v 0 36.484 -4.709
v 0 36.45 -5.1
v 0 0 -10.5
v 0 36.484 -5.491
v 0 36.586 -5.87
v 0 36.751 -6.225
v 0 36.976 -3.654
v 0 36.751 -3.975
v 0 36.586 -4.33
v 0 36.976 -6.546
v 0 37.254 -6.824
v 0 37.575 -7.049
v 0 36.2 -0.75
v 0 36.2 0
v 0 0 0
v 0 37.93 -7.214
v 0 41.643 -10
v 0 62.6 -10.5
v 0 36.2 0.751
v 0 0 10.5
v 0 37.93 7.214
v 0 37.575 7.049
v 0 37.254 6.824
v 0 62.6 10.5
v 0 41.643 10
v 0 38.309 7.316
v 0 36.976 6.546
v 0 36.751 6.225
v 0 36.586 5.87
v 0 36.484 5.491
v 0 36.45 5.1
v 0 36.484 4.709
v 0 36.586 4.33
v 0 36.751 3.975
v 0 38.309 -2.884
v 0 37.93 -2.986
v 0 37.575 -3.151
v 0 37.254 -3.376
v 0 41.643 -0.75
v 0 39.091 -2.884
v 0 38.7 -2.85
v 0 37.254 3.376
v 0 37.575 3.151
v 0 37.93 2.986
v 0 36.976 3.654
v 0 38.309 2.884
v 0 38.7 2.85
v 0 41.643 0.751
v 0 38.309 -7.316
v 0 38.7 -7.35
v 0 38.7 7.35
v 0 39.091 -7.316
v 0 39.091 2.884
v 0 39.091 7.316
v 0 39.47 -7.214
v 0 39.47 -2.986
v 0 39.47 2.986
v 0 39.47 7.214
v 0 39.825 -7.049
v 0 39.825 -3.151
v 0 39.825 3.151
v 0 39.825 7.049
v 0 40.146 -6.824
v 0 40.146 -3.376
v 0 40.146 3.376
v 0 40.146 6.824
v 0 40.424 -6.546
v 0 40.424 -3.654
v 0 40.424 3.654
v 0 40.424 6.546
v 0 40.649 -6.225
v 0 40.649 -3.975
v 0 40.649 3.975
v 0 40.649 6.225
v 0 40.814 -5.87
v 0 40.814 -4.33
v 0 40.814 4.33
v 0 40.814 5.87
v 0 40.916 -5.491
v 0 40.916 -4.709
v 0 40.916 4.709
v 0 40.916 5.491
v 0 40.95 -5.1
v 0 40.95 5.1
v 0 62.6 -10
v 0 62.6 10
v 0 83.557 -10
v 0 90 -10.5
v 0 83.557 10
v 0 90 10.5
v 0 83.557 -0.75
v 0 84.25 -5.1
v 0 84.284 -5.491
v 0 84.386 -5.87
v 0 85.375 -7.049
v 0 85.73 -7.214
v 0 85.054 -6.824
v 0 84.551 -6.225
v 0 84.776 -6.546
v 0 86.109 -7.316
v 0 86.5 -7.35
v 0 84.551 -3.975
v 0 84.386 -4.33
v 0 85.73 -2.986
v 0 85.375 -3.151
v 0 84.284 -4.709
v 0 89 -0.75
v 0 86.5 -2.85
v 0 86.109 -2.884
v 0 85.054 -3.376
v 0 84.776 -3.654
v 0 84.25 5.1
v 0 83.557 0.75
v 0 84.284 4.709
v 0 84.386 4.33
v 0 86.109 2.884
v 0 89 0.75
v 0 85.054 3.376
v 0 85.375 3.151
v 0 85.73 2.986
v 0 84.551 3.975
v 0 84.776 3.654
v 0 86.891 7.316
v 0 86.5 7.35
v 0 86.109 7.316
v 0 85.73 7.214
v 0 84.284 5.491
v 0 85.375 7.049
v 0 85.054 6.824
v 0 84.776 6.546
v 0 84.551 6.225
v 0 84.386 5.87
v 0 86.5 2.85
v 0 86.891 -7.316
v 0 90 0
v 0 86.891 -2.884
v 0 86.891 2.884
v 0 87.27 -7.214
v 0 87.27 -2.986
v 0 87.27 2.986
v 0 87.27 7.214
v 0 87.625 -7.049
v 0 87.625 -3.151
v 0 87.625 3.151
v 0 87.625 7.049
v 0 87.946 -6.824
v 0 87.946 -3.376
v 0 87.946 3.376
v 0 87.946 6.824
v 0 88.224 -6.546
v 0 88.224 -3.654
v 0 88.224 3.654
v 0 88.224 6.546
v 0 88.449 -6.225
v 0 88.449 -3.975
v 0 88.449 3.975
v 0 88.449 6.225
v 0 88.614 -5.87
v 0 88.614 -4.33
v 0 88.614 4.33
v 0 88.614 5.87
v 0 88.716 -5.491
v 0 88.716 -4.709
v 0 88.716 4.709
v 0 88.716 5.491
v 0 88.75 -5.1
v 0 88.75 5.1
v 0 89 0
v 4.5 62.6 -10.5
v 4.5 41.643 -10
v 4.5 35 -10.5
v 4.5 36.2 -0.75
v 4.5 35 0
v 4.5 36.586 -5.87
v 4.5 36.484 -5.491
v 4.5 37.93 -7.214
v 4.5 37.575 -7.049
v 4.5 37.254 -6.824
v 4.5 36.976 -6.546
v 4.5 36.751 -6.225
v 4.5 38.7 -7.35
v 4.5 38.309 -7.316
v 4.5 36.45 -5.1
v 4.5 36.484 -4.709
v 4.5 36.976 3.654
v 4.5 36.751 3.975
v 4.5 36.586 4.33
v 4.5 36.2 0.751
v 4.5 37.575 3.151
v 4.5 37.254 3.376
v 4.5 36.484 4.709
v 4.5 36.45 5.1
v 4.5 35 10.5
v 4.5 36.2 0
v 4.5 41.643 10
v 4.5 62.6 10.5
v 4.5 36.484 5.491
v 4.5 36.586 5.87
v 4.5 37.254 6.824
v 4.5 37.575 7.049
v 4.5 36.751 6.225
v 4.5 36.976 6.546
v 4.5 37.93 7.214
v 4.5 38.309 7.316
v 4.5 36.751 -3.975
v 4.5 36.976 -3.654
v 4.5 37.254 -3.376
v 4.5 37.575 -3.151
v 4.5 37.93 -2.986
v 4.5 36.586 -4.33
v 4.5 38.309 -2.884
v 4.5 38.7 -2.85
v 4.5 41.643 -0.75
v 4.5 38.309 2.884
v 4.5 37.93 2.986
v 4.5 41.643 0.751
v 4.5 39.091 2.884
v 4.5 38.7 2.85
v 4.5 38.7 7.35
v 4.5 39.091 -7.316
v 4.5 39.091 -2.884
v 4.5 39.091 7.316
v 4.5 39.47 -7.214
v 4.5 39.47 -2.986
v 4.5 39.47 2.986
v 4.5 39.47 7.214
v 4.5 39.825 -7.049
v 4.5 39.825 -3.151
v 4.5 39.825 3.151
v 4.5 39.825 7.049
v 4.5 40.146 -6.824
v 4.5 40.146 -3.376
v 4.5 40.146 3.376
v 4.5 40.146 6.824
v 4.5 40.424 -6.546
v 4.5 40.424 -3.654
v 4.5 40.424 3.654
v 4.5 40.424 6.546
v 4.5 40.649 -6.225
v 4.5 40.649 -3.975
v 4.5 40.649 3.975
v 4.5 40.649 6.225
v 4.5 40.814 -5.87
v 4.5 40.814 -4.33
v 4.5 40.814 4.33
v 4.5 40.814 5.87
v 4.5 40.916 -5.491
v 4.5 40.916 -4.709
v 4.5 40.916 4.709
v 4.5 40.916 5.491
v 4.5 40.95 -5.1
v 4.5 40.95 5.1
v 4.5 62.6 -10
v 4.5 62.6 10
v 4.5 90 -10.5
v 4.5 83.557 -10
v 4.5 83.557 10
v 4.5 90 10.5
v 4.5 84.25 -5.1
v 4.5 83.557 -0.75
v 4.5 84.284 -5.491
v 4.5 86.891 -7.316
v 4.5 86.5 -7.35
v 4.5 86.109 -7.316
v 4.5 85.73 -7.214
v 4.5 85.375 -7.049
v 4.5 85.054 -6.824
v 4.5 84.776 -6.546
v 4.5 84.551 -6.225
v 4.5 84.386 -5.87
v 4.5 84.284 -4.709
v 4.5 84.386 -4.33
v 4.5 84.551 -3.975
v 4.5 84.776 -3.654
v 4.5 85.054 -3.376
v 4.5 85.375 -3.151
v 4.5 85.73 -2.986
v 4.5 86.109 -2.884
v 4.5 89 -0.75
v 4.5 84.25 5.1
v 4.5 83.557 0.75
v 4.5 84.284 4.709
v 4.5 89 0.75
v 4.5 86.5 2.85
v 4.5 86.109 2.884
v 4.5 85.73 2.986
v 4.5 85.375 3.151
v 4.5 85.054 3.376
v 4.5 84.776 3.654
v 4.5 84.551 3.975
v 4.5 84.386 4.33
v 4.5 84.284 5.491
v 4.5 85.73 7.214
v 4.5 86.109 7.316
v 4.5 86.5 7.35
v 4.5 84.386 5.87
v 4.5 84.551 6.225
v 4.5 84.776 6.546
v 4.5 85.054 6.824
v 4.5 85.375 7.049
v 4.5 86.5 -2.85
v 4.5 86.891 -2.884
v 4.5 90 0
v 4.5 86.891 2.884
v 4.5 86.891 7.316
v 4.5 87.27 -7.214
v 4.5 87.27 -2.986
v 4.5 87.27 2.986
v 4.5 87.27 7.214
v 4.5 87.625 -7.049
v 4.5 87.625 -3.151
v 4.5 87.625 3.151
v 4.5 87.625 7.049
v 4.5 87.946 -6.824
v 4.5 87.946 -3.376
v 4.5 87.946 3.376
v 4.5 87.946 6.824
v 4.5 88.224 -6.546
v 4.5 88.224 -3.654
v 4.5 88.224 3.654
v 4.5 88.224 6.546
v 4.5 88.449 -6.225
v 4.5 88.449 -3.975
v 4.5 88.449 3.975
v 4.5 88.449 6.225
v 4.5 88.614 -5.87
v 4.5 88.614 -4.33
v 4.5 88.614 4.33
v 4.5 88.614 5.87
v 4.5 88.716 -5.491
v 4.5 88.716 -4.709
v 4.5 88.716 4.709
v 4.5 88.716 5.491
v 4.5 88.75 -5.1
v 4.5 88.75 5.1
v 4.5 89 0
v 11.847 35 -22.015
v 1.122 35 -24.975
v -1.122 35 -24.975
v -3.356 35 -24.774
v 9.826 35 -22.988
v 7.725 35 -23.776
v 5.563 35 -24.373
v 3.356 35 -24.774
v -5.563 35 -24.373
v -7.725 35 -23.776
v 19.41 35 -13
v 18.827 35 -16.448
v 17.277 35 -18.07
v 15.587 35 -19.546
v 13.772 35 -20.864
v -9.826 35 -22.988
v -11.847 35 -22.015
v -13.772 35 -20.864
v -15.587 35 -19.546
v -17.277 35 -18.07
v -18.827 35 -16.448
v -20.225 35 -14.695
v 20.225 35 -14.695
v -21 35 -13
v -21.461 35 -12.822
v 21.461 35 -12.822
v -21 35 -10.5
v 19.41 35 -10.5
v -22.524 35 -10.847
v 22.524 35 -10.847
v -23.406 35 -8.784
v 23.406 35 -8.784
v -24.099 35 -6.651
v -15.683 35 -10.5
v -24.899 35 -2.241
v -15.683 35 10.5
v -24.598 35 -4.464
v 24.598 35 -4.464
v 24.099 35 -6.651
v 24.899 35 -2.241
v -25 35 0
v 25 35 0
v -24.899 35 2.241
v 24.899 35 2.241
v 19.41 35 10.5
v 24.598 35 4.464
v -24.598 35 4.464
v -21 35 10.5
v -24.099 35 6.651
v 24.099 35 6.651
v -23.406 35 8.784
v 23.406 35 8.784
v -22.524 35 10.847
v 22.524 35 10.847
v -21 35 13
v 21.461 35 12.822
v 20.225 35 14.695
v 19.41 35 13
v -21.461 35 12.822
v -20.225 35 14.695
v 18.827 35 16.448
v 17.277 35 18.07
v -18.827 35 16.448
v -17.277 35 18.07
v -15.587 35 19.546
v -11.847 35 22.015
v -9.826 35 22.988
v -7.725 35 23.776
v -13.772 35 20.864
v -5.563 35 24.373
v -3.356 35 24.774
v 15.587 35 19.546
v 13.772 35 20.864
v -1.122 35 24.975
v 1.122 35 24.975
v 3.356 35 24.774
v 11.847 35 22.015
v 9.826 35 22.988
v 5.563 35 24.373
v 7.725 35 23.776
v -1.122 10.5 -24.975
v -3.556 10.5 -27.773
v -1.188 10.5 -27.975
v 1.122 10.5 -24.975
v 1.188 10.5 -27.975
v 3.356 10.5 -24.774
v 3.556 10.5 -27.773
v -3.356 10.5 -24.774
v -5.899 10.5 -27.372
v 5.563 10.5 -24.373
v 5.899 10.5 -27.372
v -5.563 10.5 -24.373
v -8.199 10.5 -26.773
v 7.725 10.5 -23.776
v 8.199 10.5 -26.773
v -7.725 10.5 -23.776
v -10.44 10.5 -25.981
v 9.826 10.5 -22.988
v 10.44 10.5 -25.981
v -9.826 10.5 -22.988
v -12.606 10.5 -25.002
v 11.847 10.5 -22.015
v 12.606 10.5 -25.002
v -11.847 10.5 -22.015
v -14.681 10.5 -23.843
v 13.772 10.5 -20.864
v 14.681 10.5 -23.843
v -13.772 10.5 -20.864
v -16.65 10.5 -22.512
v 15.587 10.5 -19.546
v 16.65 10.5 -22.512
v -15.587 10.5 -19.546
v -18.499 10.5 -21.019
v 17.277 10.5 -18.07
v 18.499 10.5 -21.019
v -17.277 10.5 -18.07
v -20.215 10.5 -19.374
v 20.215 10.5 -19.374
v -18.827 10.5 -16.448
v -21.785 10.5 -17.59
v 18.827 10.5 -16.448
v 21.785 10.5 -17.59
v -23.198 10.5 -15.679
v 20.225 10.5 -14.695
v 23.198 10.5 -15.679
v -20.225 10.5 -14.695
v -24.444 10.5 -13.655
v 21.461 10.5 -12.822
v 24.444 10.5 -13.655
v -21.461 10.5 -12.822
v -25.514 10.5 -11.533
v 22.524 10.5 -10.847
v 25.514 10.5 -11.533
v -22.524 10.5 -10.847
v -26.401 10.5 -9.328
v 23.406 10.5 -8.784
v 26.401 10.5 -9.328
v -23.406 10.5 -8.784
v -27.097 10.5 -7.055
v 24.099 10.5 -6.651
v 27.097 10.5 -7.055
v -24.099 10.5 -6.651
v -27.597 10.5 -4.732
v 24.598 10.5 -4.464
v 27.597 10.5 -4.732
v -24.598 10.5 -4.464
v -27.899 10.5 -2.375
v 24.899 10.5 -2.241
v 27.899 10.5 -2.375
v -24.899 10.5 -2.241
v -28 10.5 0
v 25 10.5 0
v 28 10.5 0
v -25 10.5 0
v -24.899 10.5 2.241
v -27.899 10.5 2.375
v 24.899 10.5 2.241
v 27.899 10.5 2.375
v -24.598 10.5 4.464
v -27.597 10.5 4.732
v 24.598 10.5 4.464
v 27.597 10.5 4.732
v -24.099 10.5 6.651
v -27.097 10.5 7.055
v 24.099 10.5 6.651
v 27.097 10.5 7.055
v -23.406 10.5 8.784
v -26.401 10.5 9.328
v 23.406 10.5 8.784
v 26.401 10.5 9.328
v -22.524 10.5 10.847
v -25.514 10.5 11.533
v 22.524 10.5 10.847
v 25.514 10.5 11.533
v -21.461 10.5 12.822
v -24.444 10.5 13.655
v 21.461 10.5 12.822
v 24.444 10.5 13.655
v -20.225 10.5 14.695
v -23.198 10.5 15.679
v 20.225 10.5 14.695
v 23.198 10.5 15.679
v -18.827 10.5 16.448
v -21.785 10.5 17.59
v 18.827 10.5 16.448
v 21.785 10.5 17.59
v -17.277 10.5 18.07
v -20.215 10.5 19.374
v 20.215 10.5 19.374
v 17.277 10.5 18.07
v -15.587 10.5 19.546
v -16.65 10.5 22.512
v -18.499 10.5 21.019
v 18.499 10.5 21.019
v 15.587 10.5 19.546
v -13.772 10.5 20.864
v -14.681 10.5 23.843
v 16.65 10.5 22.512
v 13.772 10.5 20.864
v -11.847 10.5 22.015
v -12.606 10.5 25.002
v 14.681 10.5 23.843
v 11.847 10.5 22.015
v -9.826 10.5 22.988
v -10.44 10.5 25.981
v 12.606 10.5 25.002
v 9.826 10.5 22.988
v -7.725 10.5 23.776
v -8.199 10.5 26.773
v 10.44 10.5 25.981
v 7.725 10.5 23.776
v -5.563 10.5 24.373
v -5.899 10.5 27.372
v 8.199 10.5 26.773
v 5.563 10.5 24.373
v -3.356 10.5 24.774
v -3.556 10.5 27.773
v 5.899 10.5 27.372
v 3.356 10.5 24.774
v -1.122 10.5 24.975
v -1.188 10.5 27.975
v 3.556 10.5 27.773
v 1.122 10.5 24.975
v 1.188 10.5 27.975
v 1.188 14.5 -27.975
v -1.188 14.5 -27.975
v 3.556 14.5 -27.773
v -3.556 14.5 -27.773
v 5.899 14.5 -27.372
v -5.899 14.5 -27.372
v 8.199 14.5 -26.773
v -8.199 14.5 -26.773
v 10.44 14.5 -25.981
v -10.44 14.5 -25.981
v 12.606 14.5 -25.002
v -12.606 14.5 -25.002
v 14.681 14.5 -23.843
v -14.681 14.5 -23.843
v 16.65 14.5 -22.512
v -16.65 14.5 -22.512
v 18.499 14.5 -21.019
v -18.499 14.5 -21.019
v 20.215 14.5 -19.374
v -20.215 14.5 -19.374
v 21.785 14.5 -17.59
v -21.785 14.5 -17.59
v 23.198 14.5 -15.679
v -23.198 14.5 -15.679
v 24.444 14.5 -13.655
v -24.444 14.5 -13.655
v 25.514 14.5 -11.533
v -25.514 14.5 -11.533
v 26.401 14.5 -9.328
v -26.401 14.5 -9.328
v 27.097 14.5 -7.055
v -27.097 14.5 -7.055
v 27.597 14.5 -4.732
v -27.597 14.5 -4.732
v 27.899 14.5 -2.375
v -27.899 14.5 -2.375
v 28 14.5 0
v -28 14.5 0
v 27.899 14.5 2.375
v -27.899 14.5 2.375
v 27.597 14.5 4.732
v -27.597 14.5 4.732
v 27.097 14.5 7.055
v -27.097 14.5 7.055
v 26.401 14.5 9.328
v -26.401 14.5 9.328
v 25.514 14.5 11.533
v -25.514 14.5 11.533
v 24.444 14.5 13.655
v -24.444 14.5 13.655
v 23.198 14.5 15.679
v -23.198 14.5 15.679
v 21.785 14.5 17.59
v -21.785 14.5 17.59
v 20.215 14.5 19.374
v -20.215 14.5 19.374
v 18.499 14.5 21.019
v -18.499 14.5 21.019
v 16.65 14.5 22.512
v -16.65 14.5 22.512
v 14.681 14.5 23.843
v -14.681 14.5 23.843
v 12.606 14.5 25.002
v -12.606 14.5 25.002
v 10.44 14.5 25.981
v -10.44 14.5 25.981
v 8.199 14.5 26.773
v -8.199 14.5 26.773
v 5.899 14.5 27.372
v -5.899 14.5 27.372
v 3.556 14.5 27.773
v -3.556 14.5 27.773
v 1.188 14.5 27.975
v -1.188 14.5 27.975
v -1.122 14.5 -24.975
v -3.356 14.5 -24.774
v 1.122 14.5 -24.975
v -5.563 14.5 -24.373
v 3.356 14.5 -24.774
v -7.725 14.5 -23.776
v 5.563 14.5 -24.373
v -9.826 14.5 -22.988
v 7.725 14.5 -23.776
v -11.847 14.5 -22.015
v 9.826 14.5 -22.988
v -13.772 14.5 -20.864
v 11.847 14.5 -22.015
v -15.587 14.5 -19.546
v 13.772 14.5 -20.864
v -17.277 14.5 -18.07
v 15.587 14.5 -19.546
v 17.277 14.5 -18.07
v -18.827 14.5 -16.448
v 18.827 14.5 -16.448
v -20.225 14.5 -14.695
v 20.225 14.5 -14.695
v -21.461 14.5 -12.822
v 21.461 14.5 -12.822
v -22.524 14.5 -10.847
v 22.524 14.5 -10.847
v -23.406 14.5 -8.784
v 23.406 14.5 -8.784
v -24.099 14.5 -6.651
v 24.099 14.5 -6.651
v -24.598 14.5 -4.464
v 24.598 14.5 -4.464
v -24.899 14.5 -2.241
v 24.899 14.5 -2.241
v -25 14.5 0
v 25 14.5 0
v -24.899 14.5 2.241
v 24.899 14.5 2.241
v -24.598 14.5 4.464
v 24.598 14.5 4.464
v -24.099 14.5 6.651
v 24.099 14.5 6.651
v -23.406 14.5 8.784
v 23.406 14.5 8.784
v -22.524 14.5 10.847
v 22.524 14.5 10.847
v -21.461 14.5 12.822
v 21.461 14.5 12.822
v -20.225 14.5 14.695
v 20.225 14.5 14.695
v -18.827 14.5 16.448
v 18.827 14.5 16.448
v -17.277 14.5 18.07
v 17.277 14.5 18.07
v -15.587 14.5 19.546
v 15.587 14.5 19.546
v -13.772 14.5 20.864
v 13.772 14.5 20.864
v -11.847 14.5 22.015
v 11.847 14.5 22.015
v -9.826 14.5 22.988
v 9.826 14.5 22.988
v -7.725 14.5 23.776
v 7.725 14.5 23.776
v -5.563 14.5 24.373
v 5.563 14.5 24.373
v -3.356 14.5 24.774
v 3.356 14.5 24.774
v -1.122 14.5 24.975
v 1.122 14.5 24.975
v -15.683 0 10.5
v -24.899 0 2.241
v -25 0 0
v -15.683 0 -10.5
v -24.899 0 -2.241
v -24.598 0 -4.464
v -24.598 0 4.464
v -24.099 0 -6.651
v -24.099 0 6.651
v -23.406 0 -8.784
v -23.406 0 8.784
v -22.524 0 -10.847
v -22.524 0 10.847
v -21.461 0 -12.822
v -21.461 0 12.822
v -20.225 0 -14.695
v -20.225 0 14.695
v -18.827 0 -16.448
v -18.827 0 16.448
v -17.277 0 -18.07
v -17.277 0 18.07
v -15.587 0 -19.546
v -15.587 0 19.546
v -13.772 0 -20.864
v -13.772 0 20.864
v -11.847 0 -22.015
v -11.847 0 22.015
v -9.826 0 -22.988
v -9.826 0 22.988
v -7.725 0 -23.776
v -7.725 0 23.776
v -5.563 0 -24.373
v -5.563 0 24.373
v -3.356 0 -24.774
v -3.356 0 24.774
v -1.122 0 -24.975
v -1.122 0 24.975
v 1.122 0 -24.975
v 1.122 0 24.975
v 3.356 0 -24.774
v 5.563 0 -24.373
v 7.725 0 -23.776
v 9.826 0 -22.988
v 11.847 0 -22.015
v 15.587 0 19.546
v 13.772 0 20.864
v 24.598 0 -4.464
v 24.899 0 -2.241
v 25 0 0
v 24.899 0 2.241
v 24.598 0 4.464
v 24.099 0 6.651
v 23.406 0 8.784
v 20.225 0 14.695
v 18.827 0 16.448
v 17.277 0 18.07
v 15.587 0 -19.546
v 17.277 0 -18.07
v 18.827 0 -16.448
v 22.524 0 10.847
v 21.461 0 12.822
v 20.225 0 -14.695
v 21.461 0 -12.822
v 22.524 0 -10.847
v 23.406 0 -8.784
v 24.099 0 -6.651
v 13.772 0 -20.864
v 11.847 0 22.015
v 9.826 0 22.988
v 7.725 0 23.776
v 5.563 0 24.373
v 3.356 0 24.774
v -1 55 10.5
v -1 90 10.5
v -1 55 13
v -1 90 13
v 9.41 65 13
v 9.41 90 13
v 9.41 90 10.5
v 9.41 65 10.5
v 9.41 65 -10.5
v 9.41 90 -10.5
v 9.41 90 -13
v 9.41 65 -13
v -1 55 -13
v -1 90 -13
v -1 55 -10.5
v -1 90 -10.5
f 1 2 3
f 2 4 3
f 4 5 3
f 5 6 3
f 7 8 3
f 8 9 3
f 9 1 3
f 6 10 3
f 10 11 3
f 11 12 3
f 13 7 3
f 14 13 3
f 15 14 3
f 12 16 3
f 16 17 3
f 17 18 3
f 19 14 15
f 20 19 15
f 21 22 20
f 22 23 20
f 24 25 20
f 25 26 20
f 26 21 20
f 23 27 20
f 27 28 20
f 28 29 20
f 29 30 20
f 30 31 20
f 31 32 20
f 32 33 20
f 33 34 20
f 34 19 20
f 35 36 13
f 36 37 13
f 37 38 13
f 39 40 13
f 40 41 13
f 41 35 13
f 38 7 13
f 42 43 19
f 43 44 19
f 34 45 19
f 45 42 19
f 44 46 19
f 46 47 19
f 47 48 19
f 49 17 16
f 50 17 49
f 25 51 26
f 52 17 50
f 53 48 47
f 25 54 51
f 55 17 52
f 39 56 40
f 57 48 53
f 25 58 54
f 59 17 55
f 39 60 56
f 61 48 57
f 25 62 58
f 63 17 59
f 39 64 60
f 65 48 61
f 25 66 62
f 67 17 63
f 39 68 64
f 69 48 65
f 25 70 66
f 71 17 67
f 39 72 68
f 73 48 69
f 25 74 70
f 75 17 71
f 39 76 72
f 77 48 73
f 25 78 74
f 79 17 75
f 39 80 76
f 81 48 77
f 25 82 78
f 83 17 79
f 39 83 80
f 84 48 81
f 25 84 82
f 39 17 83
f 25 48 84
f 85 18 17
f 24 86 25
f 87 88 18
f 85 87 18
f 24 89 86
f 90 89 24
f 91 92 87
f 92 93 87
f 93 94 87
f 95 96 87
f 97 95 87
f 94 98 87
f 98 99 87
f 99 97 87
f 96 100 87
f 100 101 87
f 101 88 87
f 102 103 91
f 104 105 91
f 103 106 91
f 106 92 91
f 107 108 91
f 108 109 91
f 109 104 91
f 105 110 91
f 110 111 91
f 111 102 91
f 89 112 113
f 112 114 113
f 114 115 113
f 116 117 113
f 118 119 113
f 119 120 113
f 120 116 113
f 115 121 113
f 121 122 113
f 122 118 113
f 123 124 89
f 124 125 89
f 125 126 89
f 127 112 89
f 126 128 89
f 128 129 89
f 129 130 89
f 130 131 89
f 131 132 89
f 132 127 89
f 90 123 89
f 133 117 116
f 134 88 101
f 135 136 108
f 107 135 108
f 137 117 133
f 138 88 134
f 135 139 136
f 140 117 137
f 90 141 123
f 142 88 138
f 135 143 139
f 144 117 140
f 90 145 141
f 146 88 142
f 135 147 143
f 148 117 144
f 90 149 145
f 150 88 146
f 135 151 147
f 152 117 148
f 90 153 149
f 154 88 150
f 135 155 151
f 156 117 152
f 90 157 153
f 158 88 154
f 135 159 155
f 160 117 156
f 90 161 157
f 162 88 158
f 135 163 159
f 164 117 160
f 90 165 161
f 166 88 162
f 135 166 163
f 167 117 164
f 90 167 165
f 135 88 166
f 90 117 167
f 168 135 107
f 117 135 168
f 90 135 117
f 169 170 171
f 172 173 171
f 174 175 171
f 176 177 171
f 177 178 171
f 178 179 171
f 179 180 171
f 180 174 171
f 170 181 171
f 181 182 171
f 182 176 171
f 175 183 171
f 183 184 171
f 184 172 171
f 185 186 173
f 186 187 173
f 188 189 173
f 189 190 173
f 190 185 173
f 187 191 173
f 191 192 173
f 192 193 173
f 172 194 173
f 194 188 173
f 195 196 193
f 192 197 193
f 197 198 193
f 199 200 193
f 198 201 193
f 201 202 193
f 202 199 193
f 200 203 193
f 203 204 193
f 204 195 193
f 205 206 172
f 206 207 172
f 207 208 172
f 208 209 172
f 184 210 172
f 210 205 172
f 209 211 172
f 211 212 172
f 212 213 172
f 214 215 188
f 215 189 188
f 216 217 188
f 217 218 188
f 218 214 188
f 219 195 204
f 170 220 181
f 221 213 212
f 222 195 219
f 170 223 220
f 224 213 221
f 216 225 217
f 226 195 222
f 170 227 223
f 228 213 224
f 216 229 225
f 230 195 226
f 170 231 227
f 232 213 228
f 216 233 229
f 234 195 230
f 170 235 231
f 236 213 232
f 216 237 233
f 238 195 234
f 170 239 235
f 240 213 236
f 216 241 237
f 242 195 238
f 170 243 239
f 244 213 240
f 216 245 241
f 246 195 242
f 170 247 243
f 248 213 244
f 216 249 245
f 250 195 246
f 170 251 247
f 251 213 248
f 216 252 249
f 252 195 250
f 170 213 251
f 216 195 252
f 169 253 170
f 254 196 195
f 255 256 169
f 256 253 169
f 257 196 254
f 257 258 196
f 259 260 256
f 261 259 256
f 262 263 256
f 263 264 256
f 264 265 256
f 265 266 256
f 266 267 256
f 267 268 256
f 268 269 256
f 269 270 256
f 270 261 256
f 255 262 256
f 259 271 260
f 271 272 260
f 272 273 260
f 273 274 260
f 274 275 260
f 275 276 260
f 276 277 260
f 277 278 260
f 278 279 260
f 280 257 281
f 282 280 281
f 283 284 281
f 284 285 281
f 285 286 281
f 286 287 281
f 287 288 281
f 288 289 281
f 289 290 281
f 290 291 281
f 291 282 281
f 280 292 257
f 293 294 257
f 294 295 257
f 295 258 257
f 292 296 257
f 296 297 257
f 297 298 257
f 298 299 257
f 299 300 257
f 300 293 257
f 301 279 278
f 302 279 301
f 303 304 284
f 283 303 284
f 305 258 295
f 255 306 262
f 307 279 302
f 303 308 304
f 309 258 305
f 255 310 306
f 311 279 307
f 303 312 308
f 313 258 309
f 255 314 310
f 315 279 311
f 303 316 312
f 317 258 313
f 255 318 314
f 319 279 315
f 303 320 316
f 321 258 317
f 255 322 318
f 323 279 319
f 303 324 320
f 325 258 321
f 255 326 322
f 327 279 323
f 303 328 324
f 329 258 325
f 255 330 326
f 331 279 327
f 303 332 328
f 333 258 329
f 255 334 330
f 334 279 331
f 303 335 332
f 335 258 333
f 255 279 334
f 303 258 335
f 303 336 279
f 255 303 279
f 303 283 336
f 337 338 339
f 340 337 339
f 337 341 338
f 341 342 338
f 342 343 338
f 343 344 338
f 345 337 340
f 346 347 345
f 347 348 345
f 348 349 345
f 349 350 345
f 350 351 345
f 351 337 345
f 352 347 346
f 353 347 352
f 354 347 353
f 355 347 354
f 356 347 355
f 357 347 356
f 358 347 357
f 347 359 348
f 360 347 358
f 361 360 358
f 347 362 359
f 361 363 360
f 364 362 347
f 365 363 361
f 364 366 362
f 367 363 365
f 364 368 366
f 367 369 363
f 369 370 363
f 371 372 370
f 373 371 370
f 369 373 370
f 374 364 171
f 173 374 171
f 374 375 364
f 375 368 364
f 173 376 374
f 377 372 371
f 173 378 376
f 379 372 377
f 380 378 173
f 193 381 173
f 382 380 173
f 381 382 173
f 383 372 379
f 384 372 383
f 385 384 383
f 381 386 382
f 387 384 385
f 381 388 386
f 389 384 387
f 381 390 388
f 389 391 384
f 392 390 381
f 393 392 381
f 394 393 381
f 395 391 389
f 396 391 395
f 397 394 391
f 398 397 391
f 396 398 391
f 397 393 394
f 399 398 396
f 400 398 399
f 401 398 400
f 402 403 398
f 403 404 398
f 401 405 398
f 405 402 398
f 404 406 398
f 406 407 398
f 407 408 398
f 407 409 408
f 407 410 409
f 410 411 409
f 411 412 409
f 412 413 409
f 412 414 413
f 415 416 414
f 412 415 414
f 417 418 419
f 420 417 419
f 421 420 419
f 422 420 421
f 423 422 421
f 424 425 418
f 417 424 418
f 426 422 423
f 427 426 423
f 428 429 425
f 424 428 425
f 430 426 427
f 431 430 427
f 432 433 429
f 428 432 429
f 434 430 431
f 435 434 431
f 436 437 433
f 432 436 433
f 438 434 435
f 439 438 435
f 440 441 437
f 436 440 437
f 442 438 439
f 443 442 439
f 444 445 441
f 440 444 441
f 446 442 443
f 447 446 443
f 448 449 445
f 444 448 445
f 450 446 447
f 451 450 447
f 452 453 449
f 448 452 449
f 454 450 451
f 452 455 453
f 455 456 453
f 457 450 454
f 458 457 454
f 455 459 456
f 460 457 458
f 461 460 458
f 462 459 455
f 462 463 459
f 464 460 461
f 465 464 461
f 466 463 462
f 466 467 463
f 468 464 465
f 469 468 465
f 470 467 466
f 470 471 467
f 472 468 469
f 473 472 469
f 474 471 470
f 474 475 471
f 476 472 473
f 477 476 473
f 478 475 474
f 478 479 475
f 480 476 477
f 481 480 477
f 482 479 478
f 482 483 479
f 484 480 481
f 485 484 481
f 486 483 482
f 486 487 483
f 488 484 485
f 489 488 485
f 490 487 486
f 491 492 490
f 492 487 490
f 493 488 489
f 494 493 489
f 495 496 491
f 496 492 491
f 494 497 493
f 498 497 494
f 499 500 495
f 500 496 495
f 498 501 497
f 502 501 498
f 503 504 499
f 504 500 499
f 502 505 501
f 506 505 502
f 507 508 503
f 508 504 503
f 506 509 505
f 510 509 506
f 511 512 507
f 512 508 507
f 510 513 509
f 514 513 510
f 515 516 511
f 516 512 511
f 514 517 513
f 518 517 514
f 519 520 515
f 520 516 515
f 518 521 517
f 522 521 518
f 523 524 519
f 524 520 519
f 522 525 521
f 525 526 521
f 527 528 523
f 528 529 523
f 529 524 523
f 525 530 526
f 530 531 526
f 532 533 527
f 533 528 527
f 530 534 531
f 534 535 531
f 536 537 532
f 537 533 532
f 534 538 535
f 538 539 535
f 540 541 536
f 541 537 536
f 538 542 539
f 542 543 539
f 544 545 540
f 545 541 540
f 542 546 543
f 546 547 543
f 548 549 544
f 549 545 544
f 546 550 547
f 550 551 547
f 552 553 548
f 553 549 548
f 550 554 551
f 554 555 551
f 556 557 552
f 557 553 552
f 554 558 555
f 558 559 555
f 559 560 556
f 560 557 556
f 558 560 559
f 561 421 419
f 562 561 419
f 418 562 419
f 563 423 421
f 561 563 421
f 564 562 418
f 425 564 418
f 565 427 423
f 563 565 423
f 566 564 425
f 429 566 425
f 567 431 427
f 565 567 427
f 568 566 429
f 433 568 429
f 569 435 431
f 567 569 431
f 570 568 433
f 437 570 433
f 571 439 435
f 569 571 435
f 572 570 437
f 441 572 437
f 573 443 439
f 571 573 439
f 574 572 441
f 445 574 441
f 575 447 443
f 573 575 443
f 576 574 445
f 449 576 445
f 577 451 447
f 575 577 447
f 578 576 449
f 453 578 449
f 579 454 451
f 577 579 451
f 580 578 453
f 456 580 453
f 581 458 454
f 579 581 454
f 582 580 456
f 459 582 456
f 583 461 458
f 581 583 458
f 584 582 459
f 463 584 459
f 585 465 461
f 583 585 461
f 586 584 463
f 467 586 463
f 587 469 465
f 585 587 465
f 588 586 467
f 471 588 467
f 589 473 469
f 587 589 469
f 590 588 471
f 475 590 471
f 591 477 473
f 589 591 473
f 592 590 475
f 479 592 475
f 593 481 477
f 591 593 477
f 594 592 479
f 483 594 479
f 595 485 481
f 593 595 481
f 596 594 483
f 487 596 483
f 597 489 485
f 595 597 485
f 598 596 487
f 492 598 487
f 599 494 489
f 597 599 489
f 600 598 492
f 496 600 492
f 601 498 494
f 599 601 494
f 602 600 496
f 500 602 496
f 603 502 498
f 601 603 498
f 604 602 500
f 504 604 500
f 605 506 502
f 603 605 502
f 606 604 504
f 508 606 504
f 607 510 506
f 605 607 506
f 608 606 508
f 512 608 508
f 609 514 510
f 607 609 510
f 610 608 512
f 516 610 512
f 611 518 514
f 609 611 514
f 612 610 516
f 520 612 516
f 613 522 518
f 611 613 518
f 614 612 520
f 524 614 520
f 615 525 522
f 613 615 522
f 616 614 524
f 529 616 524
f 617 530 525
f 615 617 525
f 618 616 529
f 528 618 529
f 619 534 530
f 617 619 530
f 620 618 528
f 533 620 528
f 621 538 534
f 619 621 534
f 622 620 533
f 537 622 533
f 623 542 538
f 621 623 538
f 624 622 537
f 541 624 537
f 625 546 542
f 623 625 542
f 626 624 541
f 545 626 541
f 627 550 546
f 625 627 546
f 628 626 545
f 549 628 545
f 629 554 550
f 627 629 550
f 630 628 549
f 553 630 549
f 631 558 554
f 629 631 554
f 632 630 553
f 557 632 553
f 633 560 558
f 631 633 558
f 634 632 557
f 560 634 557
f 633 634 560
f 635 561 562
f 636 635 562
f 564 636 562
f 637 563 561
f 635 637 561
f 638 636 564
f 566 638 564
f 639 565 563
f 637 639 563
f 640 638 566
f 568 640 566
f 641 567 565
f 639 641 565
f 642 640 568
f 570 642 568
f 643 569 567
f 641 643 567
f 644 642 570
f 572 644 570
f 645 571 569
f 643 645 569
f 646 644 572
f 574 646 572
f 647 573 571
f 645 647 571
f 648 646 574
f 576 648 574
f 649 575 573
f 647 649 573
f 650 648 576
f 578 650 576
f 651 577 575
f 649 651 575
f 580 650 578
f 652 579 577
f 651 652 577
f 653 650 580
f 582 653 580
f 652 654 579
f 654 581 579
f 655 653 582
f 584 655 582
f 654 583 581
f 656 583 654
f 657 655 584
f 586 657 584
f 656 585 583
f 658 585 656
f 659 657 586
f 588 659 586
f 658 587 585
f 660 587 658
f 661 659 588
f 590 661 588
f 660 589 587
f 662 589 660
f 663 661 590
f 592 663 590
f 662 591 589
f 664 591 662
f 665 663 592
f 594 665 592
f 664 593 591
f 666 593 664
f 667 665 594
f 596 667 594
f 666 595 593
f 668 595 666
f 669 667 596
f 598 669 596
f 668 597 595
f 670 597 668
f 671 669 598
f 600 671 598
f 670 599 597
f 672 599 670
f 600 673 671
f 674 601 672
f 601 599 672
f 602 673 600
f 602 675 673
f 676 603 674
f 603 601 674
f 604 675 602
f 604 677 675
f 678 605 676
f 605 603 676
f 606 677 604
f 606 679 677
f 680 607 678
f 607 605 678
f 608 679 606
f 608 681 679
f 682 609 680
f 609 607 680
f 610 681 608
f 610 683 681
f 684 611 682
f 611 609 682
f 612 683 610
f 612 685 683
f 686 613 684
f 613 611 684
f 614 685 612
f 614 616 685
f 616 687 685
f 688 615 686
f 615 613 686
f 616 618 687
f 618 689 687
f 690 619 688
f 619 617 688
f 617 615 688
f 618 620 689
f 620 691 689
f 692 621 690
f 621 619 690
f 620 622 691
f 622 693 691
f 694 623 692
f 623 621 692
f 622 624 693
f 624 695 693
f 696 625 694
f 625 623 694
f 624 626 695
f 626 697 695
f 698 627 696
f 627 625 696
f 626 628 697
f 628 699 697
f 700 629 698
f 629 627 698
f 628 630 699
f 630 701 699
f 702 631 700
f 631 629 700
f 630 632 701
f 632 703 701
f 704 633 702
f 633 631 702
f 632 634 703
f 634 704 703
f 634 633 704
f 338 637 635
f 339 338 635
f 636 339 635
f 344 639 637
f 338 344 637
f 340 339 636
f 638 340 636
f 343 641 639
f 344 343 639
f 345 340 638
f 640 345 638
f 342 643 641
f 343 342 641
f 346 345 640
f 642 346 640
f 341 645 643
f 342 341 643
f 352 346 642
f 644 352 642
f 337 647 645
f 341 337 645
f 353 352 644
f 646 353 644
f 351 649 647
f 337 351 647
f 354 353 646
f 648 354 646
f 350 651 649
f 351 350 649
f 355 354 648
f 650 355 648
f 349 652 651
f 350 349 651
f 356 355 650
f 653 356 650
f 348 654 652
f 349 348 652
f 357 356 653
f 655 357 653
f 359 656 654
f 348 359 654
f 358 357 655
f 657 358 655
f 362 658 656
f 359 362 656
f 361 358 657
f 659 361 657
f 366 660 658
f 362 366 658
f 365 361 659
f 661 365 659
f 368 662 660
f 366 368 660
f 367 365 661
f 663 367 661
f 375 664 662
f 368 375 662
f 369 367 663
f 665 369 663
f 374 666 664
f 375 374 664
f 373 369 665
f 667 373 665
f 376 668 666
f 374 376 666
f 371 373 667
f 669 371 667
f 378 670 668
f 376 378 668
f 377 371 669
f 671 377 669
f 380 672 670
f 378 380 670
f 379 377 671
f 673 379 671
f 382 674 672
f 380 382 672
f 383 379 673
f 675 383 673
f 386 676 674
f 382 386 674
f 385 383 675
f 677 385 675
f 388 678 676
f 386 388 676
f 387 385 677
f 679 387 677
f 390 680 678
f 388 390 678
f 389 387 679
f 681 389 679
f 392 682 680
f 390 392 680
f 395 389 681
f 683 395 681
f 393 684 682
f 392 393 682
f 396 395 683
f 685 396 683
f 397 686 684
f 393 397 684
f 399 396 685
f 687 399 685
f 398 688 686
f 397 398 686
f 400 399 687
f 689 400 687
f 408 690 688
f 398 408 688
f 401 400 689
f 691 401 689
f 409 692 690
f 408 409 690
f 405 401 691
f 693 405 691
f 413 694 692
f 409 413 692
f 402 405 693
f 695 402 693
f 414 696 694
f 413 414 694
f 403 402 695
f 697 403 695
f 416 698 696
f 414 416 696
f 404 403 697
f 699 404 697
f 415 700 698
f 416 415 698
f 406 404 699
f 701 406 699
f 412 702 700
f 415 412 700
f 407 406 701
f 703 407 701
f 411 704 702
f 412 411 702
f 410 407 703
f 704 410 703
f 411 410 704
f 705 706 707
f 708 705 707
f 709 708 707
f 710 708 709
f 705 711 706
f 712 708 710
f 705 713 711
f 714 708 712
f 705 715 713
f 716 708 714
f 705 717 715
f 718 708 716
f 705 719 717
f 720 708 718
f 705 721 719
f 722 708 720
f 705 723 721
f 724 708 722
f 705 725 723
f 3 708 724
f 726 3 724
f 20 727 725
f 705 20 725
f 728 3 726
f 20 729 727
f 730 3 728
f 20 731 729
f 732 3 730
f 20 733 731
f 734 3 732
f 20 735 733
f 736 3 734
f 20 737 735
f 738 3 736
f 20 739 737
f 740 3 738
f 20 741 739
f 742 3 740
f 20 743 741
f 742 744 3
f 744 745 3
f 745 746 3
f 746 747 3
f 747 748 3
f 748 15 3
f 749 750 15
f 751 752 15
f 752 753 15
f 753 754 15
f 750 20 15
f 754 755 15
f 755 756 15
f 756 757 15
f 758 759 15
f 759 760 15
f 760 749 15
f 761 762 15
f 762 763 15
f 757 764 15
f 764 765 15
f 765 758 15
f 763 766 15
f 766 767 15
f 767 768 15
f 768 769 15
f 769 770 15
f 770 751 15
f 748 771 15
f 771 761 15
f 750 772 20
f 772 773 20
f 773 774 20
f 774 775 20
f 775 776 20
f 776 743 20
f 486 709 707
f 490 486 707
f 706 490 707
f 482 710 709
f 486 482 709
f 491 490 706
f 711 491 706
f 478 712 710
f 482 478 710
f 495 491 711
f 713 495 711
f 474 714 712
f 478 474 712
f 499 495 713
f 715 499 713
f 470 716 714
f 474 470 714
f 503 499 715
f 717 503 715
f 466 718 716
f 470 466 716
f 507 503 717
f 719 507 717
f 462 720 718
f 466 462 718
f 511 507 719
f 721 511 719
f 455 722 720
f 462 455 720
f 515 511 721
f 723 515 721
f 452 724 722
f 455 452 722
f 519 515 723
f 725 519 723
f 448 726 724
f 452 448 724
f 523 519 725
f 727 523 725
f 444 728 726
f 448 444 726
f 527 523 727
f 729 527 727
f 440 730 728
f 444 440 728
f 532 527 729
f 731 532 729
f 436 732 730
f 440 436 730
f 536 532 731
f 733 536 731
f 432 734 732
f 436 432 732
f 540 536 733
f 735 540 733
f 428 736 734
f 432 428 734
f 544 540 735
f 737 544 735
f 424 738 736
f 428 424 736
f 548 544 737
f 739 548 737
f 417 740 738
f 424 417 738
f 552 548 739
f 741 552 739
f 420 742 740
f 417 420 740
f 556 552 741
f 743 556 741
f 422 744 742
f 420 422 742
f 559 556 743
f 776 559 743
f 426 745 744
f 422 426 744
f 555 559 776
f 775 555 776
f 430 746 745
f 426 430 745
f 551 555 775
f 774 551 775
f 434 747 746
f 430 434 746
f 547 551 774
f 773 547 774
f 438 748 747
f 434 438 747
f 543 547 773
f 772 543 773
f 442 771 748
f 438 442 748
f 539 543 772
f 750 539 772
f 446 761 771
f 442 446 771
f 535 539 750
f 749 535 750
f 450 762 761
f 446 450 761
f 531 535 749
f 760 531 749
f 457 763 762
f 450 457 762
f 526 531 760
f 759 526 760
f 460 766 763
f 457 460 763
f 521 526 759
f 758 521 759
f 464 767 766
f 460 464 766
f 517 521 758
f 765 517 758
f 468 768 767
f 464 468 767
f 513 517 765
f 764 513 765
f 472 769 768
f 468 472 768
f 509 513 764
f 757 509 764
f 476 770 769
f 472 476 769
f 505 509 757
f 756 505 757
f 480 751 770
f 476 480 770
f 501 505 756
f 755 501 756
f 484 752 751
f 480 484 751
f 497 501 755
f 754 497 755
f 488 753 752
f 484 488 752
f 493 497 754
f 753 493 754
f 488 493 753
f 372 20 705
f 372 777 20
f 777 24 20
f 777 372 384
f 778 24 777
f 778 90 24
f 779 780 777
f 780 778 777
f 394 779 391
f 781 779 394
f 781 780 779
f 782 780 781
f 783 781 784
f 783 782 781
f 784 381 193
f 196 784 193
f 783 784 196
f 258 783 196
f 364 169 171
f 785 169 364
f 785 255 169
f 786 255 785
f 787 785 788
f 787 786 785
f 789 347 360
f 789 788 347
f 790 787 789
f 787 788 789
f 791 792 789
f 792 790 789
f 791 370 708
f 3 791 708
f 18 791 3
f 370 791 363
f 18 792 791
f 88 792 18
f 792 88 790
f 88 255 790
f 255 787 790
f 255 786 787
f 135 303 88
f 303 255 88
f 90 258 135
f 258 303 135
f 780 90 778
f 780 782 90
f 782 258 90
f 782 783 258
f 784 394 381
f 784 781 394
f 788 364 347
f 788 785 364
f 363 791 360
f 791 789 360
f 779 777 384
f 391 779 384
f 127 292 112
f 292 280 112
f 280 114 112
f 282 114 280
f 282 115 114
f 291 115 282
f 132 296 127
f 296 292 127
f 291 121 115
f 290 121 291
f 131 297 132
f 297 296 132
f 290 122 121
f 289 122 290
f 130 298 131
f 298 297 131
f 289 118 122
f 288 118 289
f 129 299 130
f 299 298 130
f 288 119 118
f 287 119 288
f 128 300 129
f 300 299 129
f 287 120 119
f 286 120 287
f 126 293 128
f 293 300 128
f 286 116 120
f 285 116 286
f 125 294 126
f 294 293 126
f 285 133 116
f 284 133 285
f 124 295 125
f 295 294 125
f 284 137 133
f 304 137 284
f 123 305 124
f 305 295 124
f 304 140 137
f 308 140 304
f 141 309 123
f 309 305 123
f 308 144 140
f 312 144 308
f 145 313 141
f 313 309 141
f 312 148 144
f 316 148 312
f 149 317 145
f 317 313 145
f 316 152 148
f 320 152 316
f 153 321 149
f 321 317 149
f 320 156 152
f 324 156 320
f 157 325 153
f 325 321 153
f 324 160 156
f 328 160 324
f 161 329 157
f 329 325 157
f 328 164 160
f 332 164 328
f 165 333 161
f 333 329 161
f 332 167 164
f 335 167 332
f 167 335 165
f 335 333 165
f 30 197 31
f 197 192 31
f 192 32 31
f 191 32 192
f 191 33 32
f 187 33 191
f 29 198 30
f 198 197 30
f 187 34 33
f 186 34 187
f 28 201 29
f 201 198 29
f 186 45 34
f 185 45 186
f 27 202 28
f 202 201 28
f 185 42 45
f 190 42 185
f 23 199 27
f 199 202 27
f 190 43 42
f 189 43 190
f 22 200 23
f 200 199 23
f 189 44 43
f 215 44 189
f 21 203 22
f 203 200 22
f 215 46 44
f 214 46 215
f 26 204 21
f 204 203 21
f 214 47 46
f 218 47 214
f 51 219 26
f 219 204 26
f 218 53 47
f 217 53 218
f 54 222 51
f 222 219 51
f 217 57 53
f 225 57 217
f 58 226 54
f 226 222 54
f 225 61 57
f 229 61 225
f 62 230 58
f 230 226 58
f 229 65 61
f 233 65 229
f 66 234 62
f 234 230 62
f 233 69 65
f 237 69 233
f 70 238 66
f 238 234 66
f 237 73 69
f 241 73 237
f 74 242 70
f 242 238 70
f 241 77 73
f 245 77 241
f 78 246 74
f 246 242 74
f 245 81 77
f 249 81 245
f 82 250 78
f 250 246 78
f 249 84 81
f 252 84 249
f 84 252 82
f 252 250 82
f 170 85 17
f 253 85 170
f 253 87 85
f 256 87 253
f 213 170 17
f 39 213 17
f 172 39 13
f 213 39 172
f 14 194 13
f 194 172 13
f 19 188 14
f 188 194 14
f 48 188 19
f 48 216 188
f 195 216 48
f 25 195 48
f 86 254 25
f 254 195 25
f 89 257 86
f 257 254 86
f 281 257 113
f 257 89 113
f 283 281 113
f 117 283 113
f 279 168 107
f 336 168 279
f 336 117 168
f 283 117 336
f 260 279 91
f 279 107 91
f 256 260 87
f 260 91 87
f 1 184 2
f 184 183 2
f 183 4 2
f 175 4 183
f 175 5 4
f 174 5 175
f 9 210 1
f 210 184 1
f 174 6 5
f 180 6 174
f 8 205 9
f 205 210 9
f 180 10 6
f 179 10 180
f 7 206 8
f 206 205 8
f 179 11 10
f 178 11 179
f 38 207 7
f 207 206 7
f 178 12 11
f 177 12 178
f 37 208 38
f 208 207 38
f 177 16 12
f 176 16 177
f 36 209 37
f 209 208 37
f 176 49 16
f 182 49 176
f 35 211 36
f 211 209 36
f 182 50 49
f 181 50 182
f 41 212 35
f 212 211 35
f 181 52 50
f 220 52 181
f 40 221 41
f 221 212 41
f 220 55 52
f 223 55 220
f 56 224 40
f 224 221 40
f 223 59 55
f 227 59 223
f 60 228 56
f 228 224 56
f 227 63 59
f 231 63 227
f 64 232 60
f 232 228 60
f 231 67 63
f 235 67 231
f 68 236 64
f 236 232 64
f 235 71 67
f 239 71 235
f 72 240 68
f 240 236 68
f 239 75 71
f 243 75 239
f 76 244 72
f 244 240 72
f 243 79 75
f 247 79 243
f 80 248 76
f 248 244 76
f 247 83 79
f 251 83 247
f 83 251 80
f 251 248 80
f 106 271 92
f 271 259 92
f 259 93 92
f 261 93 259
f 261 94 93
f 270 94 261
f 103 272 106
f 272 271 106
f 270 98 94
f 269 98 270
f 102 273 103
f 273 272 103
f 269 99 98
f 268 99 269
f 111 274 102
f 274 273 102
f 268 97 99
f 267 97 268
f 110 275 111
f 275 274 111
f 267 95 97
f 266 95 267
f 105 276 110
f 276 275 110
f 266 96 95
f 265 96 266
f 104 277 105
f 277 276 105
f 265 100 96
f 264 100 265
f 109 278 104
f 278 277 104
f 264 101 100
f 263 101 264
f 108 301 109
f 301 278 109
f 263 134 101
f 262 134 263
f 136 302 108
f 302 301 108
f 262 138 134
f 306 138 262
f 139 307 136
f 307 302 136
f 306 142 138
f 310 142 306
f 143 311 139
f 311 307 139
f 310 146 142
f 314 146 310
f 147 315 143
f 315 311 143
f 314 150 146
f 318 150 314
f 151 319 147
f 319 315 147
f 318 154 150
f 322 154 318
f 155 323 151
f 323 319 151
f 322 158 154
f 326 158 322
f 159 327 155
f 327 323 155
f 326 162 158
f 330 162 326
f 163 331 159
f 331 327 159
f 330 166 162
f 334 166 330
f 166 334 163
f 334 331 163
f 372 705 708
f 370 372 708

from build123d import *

# Parameters (mm, degrees)
SKETCH1_W           = 3
SKETCH1_H           = 4
SKETCH1_W_2         = 25
SKETCH1_H_2         = 35
SKETCH2_W           = 4.909608088
SKETCH2_H           = 2.5
SKETCH2_W_2         = 1
BOSS_EXTRUDE1_DEPTH = 55
CHAMFER1_SIZE       = 10
CHAMFER1_SIZE2      = 30
CHAMFER2_SIZE       = 20
SKETCH3_R           = 2.25
SKETCH3_W           = 20
SKETCH3_H           = 41.913950128
SKETCH3_W_2         = 1.5
SKETCH3_H_2         = 5.443024936
SKETCH3_W_3         = 1.501012669
CUT_EXTRUDE1_DEPTH  = 55
SKETCH5_W           = 15.682680147
SKETCH5_H           = 21
CUT_EXTRUDE2_DEPTH  = 36


with BuildPart() as part:
    # Sketch1 → Revolve1 (revolve)
    with BuildSketch(Plane.XY):
        with Locations((26.5, 12.5)):
            Rectangle(SKETCH1_W, SKETCH1_H)
        with Locations((12.5, 17.5)):
            Rectangle(SKETCH1_W_2, SKETCH1_H_2)
    revolve(axis=Axis((0, 35, 0), (0, -1, 0)))

    # Sketch2 → Boss-Extrude1 (add)
    with BuildSketch(Plane(origin=(0, 35, 0), x_dir=(1, 0, 0), z_dir=(0, 1, 0))):
        Polygon((4.5, 10.5), (4.5, 13), (0, 13), (0, 10.5), (0, -10.5), (0, -13), (4.5, -13), (4.5, -10.5), align=None)
        with Locations((6.954804044, 11.75)):
            Rectangle(SKETCH2_W, SKETCH2_H)
        with Locations((6.954804044, -11.75)):
            Rectangle(SKETCH2_W, SKETCH2_H)
        with Locations((-0.5, -11.75)):
            Rectangle(SKETCH2_W_2, SKETCH2_H)
        with Locations((-0.5, 11.75)):
            Rectangle(SKETCH2_W_2, SKETCH2_H)
    extrude(amount=BOSS_EXTRUDE1_DEPTH)

    # Chamfer1
    chamfer1_edges = [part.edges().sort_by_distance(p)[0] for p in [
        (9.409608088, 35, 11.75),
        (9.409608088, 35, -11.75),
    ]]
    chamfer1_side = [part.faces().sort_by_distance(p)[0] for p in [
        (-0.237473478, 35, 0),
    ]]
    chamfer(chamfer1_edges, length=CHAMFER1_SIZE, length2=CHAMFER1_SIZE2, reference=chamfer1_side[0])

    # Chamfer2
    chamfer2_edges = [part.edges().sort_by_distance(p)[0] for p in [
        (-1, 35, -11.75),
        (-1, 35, 11.75),
    ]]
    chamfer(chamfer2_edges, length=CHAMFER2_SIZE)

    # Sketch3 → Cut-Extrude1 (cut)
    with BuildSketch(Plane(origin=(4.5, 0, 0), x_dir=(0, 0, -1), z_dir=(1, 0, 0))):
        with Locations((-5.1, 86.5)):
            Circle(SKETCH3_R)
        with Locations((5.1, 86.5)):
            Circle(SKETCH3_R)
        with Locations((-5.1, 38.7)):
            Circle(SKETCH3_R)
        with Locations((5.1, 38.7)):
            Circle(SKETCH3_R)
        with Locations((0, 62.6)):
            Rectangle(SKETCH3_W, SKETCH3_H)
        with Locations((0, 86.278487532)):
            Rectangle(SKETCH3_W_2, SKETCH3_H_2)
        with Locations((-0.000506335, 38.921512468)):
            Rectangle(SKETCH3_W_3, SKETCH3_H_2)
    extrude(amount=-CUT_EXTRUDE1_DEPTH, mode=Mode.SUBTRACT)

    # Sketch5 → Cut-Extrude2 (cut, through all)
    with BuildSketch(Plane(origin=(0, 35, 0), x_dir=(1, 0, 0), z_dir=(0, 1, 0))):
        with Locations((-7.841340074, 0)):
            Rectangle(SKETCH5_W, SKETCH5_H)
    extrude(amount=-CUT_EXTRUDE2_DEPTH, mode=Mode.SUBTRACT)


solid = part.part
